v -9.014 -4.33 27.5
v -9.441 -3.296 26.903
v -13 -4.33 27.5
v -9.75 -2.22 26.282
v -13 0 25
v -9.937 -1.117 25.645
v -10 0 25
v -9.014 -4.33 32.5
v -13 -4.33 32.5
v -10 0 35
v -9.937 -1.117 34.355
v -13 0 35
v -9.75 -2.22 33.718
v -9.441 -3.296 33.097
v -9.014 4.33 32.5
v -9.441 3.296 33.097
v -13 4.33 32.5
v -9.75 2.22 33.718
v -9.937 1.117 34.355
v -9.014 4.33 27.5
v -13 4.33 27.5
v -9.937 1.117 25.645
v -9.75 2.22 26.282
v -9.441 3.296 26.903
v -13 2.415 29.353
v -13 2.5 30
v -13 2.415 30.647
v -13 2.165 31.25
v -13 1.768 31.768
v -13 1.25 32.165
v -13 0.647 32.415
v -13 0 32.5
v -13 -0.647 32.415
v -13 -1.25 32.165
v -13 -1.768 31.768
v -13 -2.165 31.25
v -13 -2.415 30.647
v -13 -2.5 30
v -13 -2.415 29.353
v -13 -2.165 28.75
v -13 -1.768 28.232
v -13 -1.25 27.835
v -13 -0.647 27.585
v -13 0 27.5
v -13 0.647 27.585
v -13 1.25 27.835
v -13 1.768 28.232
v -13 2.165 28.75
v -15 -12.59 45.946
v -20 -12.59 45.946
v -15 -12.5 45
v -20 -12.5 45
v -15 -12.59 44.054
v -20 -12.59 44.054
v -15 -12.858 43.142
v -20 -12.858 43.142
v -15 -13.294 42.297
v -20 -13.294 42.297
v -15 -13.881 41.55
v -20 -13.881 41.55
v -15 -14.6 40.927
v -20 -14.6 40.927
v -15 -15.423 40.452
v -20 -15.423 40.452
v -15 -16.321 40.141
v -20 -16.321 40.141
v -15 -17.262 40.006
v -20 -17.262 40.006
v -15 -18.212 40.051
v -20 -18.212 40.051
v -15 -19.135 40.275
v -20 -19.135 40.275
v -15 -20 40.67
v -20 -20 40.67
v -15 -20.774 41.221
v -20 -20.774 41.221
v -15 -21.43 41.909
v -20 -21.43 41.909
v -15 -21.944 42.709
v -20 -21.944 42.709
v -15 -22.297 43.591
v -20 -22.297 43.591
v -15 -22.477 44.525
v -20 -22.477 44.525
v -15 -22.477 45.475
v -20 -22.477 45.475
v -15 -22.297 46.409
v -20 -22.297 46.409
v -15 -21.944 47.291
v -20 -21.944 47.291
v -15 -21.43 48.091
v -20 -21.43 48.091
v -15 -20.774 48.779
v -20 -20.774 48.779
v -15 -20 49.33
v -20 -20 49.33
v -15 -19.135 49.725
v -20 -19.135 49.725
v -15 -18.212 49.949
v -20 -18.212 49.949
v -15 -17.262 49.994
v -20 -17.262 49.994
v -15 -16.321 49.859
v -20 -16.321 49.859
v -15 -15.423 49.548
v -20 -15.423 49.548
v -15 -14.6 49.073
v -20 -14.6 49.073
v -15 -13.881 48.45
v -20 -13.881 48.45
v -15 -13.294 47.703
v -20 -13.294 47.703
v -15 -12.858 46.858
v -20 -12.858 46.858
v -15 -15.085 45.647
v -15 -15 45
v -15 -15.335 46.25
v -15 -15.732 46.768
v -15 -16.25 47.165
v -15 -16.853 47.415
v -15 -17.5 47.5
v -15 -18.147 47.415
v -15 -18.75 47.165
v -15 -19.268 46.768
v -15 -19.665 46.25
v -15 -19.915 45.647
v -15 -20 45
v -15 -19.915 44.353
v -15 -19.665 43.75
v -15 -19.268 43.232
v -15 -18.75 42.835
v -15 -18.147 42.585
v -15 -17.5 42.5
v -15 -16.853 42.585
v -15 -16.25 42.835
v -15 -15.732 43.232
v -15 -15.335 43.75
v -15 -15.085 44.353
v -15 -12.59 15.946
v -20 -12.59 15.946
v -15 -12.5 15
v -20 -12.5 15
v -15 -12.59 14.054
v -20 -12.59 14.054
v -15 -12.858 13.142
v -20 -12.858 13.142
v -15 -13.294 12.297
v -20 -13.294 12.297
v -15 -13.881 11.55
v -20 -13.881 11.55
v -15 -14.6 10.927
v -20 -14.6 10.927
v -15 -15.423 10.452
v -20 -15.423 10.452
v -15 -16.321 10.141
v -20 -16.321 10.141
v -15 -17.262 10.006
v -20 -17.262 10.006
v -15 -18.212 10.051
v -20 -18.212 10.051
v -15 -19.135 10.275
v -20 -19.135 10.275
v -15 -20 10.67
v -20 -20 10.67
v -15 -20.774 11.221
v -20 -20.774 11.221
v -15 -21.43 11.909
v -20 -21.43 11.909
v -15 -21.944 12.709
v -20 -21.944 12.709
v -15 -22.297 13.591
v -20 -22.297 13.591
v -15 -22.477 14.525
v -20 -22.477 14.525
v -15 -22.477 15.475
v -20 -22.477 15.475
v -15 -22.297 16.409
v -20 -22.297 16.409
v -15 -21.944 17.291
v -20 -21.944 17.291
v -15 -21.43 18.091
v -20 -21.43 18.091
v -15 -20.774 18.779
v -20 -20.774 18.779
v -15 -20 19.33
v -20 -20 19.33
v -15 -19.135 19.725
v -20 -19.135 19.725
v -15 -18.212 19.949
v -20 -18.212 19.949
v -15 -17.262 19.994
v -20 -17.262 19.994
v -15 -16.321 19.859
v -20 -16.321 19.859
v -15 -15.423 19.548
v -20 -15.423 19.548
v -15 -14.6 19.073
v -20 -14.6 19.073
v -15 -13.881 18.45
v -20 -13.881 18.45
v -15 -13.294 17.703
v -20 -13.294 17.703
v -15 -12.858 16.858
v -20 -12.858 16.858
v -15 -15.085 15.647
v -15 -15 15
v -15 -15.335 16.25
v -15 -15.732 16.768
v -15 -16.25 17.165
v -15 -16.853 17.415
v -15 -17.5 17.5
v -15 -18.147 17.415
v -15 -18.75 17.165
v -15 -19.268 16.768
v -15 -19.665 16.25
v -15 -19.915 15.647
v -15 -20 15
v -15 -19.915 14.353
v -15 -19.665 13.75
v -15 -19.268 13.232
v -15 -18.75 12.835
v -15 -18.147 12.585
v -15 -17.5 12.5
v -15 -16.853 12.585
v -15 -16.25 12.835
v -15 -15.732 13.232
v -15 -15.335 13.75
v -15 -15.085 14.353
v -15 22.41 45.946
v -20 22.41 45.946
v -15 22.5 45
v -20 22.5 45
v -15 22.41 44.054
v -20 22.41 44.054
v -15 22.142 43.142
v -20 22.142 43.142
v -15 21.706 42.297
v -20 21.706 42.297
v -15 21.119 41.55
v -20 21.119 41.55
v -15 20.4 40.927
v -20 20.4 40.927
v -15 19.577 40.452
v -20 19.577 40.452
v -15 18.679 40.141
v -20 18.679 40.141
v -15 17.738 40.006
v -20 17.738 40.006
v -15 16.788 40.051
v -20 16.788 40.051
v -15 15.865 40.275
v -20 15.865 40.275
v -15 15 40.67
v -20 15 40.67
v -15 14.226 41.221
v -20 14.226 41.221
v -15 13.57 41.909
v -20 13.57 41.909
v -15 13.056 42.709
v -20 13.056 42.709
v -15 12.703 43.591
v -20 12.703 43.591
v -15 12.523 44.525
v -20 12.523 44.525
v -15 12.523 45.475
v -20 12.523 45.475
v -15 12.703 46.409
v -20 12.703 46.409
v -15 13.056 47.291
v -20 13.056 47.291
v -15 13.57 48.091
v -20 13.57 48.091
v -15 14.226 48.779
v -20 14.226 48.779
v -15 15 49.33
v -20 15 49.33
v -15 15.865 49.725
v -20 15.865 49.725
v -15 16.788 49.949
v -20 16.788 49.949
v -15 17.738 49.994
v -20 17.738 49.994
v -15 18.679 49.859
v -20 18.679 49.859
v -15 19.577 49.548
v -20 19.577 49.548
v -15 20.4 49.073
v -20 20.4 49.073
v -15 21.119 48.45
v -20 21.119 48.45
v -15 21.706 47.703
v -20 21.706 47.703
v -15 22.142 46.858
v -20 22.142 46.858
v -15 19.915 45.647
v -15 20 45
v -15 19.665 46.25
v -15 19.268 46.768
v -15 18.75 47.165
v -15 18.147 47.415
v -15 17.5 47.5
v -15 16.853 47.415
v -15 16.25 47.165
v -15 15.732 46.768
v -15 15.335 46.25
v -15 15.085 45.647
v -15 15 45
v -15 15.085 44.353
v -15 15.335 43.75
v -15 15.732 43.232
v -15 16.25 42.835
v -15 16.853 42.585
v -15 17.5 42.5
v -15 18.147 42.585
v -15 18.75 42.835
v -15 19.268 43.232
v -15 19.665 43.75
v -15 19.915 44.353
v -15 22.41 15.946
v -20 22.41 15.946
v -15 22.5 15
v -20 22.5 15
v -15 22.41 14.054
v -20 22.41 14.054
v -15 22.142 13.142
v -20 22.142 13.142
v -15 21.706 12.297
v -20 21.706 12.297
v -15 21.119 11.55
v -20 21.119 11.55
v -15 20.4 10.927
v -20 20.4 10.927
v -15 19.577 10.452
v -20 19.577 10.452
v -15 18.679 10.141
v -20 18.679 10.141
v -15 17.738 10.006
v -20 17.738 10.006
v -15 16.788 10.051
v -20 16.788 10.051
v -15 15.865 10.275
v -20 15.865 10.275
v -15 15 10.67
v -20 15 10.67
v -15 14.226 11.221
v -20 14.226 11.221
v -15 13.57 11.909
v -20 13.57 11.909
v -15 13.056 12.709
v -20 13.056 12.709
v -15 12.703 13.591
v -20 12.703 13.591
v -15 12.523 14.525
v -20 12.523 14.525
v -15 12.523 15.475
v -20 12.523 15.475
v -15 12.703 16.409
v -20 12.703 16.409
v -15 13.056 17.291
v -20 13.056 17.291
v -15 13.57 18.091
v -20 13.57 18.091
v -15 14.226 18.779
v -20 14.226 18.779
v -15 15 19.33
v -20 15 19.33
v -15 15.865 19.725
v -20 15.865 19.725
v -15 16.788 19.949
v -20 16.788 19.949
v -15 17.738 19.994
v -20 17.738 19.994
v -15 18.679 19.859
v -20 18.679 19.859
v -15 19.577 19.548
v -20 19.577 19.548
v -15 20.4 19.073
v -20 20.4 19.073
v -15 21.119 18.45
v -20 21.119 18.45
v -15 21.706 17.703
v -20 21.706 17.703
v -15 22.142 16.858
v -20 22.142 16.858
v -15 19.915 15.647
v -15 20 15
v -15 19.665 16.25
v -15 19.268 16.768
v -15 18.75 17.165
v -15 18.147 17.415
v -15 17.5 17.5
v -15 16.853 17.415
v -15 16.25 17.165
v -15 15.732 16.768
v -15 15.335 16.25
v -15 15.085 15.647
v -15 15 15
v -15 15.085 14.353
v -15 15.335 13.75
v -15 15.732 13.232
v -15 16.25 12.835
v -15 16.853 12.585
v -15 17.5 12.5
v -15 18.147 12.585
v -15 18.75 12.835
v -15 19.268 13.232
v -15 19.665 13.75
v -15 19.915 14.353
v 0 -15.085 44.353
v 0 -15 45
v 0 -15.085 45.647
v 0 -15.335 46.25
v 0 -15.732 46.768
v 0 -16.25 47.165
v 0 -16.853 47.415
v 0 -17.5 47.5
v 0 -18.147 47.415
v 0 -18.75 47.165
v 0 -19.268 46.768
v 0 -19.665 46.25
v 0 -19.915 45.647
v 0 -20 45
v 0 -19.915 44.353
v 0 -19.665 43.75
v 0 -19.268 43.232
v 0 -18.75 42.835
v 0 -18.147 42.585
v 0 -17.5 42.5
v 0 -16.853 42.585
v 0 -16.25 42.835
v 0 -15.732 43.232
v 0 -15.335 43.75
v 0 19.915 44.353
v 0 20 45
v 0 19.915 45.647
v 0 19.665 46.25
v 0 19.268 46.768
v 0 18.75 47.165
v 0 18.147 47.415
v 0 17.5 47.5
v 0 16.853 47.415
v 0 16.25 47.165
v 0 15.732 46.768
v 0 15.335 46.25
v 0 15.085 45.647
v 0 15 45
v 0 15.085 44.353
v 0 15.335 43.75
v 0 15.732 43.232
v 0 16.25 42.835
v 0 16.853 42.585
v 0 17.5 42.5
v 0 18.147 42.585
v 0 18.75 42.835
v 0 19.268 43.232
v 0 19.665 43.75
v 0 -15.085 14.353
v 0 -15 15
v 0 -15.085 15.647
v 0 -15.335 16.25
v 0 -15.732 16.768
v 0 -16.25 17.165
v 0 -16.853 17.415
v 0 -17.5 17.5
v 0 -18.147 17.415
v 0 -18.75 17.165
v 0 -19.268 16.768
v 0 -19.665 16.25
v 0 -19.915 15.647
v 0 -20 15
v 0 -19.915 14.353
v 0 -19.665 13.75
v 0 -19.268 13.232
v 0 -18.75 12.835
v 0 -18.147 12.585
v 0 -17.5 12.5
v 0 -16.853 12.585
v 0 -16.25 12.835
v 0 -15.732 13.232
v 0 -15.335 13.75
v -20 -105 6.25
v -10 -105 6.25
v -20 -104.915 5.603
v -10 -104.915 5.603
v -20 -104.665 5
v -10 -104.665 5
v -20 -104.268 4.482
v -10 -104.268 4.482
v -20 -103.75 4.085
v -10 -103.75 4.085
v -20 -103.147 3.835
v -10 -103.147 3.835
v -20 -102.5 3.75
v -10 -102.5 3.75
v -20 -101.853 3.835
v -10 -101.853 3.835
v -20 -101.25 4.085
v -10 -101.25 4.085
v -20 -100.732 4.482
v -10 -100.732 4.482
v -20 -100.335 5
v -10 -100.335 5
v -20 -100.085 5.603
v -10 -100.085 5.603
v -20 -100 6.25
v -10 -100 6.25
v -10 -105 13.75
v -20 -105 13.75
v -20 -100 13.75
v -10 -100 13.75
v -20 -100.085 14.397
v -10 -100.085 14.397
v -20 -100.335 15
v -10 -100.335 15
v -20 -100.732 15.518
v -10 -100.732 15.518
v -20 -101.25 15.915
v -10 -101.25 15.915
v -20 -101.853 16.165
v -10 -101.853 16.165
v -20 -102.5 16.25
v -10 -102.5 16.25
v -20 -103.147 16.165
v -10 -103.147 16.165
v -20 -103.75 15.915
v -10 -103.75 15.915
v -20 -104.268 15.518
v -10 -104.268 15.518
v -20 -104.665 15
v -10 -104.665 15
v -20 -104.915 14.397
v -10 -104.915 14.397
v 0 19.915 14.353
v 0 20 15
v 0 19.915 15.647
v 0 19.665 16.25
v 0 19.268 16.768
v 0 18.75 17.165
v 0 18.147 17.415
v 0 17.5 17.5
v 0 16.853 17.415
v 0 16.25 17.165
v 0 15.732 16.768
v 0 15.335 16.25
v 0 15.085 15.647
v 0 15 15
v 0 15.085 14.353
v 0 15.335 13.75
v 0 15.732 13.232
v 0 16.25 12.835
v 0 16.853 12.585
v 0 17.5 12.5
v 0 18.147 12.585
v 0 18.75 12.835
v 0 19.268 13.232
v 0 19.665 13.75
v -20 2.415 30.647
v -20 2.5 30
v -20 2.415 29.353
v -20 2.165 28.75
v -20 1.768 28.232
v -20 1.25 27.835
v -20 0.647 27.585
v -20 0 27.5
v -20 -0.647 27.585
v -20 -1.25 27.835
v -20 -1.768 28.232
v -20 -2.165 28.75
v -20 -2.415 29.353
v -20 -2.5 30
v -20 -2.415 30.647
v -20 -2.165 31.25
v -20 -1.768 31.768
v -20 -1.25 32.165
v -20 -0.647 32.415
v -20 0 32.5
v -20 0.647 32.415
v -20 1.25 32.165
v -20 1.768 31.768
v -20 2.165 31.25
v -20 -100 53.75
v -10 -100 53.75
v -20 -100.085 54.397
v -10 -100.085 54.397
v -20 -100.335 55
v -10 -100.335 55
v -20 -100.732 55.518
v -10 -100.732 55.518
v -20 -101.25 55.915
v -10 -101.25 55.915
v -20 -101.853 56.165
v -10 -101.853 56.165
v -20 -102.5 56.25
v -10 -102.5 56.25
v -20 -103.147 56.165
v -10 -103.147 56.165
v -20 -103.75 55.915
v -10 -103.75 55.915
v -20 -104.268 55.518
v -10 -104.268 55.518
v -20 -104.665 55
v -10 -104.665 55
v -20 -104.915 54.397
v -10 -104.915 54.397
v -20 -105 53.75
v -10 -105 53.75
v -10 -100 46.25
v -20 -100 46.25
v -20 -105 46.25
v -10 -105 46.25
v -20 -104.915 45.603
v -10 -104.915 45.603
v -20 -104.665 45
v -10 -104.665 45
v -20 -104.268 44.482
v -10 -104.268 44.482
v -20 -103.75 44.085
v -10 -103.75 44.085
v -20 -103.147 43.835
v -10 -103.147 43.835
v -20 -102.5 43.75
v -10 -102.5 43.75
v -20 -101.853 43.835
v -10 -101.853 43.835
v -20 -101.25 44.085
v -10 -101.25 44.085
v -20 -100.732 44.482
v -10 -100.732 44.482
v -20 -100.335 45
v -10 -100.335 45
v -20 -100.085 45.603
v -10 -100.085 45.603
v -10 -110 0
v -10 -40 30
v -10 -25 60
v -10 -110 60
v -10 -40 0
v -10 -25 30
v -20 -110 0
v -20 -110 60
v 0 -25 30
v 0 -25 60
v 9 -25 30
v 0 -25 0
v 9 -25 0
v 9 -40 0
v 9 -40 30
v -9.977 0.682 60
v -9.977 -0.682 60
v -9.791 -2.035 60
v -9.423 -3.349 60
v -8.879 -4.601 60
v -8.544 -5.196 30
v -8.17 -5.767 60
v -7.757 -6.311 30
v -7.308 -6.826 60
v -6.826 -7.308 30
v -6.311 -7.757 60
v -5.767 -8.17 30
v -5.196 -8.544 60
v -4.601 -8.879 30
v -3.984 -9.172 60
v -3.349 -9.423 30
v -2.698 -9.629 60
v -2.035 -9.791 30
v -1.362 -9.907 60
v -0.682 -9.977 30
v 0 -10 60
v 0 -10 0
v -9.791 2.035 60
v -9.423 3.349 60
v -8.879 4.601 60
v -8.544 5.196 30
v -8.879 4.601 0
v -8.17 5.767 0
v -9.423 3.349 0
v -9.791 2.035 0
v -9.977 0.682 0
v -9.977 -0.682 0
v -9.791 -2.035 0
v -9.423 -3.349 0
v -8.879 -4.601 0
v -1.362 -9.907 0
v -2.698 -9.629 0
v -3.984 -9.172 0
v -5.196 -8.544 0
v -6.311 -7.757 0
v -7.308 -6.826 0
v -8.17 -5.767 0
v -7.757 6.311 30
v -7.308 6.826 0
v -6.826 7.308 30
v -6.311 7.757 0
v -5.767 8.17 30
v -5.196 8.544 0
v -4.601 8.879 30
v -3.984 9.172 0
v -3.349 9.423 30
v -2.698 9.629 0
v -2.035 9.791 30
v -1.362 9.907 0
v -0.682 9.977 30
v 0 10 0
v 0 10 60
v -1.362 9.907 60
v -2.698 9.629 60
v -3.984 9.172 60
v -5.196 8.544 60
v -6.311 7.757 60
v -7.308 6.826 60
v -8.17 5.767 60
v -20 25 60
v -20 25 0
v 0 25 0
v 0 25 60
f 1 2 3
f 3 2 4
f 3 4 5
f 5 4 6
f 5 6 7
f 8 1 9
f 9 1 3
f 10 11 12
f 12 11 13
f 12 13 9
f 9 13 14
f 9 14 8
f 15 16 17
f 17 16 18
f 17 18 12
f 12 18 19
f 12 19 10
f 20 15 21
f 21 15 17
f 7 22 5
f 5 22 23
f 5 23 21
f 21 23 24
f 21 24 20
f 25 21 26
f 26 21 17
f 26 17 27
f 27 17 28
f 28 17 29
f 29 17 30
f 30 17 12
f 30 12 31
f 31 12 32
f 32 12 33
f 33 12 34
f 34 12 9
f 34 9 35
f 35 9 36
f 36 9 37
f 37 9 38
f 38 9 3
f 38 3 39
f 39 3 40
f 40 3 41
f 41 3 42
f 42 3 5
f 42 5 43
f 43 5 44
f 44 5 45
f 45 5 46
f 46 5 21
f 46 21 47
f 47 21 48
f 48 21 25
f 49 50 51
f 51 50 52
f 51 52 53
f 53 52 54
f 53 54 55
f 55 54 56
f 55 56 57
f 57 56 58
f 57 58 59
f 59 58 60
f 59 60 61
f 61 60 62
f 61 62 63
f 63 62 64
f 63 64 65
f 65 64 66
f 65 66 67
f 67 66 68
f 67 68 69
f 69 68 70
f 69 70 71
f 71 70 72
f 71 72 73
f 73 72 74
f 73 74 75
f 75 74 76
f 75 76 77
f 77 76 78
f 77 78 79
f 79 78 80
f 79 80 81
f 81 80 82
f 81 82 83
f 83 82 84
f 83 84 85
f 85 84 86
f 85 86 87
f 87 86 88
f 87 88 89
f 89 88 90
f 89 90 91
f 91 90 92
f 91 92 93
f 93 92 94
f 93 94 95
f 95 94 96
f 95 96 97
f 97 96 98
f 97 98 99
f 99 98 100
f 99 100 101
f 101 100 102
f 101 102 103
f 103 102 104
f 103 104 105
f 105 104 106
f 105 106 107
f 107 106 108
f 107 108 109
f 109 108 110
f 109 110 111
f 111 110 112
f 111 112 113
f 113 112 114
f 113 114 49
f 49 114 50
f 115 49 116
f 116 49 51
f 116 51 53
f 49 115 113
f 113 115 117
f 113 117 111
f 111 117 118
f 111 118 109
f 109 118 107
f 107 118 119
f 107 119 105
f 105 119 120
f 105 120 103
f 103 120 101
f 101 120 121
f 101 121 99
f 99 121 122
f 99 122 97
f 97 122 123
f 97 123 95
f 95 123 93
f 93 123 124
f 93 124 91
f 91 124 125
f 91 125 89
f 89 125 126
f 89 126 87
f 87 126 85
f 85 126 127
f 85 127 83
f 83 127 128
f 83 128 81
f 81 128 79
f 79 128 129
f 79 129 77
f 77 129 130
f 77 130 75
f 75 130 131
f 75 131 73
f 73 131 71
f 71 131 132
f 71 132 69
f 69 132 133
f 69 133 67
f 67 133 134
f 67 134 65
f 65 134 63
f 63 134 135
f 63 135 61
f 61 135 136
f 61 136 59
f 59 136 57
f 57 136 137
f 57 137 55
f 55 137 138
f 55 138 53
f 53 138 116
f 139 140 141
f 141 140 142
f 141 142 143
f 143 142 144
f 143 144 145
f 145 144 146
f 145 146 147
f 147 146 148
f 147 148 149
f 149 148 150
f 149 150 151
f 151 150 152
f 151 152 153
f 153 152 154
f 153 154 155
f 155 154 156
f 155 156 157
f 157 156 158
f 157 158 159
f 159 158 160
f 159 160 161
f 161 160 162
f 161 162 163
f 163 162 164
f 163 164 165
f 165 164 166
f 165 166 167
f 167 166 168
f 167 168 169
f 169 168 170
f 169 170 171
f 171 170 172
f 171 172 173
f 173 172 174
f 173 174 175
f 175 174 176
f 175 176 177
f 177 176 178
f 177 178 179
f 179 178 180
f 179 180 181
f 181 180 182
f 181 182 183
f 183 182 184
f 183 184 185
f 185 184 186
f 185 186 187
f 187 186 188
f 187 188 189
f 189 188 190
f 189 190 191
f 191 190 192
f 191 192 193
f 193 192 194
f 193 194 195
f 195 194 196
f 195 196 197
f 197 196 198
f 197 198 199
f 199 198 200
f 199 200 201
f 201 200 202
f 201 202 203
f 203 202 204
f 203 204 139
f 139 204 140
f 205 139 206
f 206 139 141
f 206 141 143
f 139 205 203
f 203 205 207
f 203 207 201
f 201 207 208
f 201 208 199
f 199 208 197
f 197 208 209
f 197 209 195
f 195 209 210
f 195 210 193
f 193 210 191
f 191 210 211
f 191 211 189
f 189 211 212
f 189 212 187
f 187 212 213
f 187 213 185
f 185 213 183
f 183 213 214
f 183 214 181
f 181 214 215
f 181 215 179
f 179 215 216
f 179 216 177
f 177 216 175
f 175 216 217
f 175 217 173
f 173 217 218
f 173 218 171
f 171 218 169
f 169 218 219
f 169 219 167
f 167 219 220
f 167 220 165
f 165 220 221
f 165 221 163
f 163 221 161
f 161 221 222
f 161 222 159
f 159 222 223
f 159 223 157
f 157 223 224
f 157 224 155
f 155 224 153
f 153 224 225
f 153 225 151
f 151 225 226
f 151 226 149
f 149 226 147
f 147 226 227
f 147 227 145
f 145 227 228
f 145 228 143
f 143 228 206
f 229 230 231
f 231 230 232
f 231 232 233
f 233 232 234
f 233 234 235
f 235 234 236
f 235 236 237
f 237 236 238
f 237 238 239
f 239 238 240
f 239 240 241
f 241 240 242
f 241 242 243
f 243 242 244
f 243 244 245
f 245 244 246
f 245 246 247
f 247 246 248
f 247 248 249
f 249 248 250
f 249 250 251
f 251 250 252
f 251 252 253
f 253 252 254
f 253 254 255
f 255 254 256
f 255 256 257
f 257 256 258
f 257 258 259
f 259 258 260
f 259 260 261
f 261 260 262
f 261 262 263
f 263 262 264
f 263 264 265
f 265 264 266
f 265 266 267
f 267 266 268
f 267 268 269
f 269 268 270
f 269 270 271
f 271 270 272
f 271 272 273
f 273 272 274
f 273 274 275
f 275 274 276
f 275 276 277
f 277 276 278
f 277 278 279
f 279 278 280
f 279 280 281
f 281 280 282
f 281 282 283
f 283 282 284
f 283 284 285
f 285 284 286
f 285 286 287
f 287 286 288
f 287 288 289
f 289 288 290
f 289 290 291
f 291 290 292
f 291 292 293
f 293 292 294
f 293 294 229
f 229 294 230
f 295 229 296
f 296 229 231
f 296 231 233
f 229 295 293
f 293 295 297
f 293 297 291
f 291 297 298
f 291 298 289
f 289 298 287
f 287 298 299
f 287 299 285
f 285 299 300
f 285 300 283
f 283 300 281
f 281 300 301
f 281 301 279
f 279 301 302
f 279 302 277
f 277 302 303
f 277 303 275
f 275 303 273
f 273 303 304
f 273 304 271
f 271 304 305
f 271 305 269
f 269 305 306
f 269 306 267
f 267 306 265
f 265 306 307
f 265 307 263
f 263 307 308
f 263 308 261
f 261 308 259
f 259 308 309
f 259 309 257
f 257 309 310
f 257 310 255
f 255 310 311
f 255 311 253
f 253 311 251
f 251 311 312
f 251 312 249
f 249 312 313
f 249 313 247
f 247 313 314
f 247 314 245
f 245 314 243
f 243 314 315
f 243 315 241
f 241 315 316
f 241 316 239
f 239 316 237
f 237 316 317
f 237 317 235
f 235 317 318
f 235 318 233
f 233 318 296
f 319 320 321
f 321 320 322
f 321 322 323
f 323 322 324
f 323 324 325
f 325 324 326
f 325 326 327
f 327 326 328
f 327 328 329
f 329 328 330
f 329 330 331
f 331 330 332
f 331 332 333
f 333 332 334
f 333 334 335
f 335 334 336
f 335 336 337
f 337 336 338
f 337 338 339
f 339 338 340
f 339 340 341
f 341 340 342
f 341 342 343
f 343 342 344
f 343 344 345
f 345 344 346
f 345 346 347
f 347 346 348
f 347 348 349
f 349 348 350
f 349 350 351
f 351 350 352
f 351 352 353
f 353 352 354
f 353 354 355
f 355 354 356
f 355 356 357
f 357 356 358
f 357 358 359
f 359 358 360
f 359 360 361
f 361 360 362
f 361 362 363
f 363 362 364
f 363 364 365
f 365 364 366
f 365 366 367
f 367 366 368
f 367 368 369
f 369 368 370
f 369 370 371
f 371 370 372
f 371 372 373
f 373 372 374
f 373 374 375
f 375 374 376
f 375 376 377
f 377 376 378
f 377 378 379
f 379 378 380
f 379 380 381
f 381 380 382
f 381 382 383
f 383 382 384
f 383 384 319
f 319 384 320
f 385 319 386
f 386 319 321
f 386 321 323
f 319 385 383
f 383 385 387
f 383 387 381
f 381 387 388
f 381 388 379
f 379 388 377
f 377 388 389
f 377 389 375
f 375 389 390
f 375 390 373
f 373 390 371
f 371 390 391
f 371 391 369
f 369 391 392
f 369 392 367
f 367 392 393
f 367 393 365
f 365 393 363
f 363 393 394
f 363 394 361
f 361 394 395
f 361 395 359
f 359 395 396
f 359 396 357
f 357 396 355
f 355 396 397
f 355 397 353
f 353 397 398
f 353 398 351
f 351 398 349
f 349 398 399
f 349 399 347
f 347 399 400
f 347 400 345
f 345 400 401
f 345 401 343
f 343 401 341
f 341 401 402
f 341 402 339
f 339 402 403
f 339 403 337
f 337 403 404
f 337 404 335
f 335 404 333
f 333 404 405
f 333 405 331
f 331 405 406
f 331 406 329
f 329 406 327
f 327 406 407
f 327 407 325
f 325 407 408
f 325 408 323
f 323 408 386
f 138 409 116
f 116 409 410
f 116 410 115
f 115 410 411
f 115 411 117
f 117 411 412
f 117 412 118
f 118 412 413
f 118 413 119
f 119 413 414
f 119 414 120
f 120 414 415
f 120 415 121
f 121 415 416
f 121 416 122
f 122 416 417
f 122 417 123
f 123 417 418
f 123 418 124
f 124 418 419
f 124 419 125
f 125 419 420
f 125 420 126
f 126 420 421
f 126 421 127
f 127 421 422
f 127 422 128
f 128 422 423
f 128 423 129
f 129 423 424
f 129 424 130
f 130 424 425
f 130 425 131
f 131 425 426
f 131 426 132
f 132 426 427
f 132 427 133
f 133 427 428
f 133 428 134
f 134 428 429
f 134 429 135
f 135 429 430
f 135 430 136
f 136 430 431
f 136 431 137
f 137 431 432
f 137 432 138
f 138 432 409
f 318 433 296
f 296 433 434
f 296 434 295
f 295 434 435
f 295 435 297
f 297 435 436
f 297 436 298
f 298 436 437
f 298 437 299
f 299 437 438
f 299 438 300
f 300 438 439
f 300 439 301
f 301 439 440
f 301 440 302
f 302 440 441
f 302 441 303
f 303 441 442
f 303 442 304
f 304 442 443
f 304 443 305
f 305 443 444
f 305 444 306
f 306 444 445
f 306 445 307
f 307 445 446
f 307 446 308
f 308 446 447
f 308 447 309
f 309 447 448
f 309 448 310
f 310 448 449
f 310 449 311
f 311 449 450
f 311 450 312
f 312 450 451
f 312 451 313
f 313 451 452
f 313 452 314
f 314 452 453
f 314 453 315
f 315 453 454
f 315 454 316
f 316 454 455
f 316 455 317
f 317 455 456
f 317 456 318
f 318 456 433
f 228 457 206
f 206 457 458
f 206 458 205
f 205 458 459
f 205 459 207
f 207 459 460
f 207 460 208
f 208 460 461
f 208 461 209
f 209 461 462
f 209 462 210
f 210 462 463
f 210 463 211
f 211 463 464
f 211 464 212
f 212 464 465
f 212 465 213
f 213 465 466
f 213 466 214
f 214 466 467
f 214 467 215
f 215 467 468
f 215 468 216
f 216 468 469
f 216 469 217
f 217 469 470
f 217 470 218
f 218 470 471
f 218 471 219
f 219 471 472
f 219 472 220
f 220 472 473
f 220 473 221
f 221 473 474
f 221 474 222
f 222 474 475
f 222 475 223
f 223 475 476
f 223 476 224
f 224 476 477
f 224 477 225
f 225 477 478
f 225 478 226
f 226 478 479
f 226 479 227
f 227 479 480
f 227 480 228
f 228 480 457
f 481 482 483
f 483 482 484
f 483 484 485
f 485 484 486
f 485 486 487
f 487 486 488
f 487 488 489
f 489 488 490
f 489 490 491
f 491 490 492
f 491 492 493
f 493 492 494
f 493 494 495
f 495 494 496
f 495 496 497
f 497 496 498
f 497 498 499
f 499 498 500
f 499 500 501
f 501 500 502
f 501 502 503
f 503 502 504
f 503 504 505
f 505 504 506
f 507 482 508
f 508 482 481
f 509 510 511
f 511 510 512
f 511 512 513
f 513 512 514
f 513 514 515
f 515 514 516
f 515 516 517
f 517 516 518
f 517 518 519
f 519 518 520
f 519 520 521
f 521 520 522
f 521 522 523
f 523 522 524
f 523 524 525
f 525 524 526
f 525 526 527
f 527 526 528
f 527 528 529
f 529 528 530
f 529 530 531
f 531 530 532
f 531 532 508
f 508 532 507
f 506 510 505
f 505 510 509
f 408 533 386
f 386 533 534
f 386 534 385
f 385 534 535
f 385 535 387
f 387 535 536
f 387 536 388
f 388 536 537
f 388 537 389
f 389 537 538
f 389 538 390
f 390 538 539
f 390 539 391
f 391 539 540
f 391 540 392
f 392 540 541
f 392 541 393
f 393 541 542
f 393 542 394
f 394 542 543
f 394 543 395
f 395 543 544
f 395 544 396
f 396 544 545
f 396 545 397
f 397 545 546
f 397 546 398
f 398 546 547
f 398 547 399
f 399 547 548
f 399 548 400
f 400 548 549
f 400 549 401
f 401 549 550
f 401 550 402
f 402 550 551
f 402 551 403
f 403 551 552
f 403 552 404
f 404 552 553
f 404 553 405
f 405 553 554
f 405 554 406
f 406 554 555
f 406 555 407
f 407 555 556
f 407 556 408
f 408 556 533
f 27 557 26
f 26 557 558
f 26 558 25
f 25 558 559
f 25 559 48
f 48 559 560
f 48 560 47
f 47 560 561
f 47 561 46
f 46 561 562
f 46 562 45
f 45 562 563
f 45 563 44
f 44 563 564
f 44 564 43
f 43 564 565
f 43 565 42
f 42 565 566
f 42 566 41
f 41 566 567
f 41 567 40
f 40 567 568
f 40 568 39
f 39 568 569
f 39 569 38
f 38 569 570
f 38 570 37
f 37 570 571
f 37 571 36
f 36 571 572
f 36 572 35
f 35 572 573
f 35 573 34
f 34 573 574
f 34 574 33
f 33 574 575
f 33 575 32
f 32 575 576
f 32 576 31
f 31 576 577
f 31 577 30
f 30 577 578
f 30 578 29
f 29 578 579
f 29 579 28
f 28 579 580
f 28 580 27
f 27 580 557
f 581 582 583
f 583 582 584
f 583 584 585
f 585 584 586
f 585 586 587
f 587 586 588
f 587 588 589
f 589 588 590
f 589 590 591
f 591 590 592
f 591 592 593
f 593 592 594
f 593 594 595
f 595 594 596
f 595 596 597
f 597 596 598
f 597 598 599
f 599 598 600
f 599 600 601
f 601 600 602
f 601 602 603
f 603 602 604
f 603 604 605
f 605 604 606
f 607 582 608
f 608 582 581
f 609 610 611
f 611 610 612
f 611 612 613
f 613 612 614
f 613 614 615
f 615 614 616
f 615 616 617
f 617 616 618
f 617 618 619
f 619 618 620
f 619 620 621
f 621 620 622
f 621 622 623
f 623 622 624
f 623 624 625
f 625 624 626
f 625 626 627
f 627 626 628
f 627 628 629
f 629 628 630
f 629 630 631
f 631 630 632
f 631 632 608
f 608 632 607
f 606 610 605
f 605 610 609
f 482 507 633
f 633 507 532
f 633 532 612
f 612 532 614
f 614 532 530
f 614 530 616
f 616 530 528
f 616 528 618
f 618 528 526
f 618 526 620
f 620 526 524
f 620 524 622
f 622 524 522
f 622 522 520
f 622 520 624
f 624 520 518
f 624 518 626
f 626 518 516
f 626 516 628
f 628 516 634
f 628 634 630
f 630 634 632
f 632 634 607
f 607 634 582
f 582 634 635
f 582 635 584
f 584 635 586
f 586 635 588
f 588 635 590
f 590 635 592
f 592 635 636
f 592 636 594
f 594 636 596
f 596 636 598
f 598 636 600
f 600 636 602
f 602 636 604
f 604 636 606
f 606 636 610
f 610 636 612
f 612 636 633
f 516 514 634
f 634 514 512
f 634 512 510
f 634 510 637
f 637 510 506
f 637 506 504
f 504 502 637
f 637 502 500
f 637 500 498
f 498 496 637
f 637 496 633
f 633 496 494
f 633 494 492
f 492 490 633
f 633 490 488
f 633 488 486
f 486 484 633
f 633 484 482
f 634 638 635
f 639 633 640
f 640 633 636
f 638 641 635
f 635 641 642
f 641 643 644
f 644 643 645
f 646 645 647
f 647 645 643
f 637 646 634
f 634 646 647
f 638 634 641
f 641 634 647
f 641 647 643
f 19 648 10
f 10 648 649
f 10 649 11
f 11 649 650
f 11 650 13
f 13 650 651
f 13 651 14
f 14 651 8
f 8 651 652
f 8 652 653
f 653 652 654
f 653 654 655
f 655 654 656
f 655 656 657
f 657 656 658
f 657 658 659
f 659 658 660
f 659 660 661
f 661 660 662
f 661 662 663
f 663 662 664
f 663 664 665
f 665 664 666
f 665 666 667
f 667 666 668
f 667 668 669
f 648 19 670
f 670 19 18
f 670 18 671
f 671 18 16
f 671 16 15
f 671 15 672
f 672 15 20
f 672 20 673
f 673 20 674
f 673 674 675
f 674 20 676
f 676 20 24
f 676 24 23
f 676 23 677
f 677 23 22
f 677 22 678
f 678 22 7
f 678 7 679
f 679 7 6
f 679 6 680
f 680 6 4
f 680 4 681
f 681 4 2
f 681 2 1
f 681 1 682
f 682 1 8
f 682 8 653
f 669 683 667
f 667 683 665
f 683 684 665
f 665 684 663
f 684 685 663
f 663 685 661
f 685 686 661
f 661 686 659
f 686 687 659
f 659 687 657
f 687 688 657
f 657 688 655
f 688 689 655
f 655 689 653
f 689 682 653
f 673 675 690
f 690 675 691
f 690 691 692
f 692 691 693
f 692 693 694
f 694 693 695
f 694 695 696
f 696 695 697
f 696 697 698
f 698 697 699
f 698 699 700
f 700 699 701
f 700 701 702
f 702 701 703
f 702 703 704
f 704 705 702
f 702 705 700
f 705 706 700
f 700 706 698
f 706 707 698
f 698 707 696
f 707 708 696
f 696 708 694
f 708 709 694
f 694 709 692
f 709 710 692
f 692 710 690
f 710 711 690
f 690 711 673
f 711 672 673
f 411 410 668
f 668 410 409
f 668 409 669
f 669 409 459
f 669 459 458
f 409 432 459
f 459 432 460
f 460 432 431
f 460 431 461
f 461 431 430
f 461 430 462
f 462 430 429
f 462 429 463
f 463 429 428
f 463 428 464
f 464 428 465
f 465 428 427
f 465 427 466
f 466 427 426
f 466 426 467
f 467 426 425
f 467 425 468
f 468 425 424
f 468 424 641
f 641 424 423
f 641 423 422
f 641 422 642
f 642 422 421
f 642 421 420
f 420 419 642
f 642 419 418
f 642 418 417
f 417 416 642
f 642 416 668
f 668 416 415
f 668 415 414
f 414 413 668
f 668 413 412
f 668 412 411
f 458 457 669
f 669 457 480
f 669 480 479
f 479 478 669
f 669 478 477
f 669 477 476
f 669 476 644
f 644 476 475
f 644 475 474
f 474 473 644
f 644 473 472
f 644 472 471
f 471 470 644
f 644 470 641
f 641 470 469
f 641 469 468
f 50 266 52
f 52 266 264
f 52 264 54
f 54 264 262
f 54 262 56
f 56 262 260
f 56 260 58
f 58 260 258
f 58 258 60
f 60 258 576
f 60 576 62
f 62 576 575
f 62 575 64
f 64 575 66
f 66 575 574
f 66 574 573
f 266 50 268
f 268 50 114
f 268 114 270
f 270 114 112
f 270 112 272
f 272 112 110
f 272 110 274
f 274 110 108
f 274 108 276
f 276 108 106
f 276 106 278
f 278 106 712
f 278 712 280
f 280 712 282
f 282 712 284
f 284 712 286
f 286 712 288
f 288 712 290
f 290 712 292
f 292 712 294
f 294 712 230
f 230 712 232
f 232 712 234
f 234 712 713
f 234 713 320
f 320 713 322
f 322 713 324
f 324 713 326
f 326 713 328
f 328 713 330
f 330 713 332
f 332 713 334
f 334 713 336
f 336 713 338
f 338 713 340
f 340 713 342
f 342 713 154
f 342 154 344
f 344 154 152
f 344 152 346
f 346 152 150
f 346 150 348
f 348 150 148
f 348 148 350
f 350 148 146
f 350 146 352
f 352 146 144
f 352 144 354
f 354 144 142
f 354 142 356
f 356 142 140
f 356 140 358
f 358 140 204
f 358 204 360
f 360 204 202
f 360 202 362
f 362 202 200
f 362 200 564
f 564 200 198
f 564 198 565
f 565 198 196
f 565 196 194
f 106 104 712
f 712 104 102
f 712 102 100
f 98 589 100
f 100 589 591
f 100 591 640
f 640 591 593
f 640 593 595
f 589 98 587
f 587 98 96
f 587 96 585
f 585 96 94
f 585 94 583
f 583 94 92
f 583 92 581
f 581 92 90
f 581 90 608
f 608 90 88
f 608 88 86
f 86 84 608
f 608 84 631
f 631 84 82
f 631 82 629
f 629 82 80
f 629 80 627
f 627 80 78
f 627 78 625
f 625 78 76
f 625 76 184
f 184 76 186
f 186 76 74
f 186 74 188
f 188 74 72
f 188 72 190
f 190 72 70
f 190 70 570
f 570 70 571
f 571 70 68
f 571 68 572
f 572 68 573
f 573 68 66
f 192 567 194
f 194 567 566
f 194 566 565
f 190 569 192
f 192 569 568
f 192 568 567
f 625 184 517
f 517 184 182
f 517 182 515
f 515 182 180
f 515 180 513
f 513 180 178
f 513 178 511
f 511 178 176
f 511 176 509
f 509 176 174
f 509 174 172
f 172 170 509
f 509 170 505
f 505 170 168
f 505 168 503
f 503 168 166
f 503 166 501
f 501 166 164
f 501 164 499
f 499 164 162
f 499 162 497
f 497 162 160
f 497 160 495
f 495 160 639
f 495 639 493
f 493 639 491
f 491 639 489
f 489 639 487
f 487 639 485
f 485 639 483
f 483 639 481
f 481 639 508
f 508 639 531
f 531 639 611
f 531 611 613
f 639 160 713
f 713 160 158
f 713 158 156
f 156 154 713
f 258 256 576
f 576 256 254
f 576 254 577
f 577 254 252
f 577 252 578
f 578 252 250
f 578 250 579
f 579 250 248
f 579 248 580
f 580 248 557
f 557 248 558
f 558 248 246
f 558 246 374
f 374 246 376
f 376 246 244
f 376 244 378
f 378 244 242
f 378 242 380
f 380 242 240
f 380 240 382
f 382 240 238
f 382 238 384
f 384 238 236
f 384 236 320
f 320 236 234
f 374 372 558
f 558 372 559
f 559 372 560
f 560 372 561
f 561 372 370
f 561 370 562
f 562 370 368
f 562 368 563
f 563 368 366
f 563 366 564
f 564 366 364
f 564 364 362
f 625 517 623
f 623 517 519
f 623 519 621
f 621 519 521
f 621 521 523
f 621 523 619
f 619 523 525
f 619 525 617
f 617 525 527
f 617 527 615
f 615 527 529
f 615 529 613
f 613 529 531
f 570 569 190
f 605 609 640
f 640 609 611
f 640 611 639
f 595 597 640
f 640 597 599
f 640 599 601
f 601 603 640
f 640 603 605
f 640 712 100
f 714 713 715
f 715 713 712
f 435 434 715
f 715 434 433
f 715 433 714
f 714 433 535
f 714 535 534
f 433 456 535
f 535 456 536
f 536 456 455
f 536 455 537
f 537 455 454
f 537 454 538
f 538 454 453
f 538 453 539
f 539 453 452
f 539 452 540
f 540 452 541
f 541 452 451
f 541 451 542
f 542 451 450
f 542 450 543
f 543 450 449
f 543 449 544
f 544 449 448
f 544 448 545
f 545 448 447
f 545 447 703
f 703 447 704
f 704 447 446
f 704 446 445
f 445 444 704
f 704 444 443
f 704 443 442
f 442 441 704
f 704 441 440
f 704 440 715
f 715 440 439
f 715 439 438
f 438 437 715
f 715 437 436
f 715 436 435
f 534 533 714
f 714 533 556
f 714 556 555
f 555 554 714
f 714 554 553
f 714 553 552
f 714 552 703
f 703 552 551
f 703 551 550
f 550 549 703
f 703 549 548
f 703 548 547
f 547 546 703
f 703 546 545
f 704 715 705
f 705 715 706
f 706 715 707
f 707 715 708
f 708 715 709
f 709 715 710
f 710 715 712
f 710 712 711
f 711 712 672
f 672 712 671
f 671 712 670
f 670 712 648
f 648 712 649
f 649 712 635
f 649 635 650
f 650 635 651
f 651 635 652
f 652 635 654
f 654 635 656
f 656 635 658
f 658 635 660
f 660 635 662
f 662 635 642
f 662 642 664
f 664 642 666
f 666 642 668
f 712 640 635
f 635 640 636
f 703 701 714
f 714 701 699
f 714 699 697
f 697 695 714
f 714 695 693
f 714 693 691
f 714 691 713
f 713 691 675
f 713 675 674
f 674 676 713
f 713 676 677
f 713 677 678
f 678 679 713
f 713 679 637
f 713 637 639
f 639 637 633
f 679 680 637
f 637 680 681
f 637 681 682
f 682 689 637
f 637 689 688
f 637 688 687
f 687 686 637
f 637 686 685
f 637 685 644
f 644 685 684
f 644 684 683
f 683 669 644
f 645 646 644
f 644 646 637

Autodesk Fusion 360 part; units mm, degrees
sketch "Sketch1" plane through (0, 0, 0) normal (0, 0, 1) x (1, 0, 0)
  circle A0 centre (0, 0) radius 10
  line L0 (0, 0) -> (0, 10) construction
  line L1 (0, 10) -> (0, 25)
  line L2 (0, 25) -> (-20, 25)
  line L3 (-20, 25) -> (-20, -25)
  line L4 (-20, -25) -> (0, -25)
  line L5 (0, -25) -> (0, -10)
  line L6 (-20, -25) -> (-20, -110)
  line L7 (-20, -110) -> (-10, -110)
  line L8 (-10, -110) -> (-10, -25)
  line L9 (-10, -25) -> (9, -25)
  line L10 (9, -25) -> (9, -40)
  line L11 (9, -40) -> (-10, -40)
  line L12 (-10, -40) -> (-10, -25)
  dimension "d1" = 20
  dimension "d2" = 15
  dimension "d3" = 20
  dimension "d4" = 50
  dimension "d5" = 85
  dimension "d6" = 10
  dimension "d7" = 19
extrude "Extrude1" add sketch "Sketch1" along normal blind 60 contours A0 L1 L2 L3 L4 L5 L9
extrude "Extrude2" add sketch "Sketch1" along normal blind 30 contours L4 L8 L9 L10 L11 L12
extrude "Extrude3" add sketch "Sketch1" along normal blind 60 contours L4 L6 L7 L8 L12
sketch "Sketch2" plane through (-20, 0, 0) normal (-1, 0, 0) x (0, -1, 0)
  line L0 (-25, 0) -> (110, 0)
  line L1 (110, 0) -> (110, 60)
  line L2 (110, 60) -> (-25, 60)
  line L3 (-25, 60) -> (-25, 0)
  line L4 (-25, 60) -> (-17.5, 60) construction
  line L5 (-17.5, 60) -> (27.5, 60) construction
  line L6 (-17.5, 60) -> (-17.5, 45) construction
  circle A0 centre (-17.5, 15) radius 2.5
  line L7 (110, 30) -> (102.5, 30) construction
  line L8 (102.5, 30) -> (102.5, 46.25) construction
  circle A1 centre (102.5, 46.25) radius 2.5
  circle A2 centre (102.5, 53.75) radius 2.5
  line L9 (102.5, 53.75) -> (100, 53.75) construction
  line L10 (102.5, 46.25) -> (100, 46.25) construction
  line L11 (100, 53.75) -> (100, 46.25)
  line L12 (105, 53.75) -> (105, 46.25)
  circle A3 centre (102.5, 6.25) radius 2.5
  line L13 (105, 6.25) -> (105, 13.75)
  circle A4 centre (102.5, 13.75) radius 2.5
  line L14 (100, 6.25) -> (100, 13.75)
  circle A5 centre (17.5, 15) radius 2.5
  circle A6 centre (-17.5, 45) radius 2.5
  circle A7 centre (17.5, 45) radius 2.5
  line L15 (-17.5, 45) -> (17.5, 45) construction
  line L16 (-17.5, 15) -> (17.5, 15) construction
  line L17 (0, 15) -> (0, 45) construction
  circle A8 centre (0, 30) radius 2.5
  dimension "d14" = 7.5
  dimension "d15" = 45
  dimension "d16" = 15
  dimension "d23" = 7.5
  dimension "d24" = 16.25
  dimension "d25" = 5
  dimension "d28" = 0
  dimension "d29" = 7.5
  dimension "d34" = 35
  dimension "d35" = 30
  dimension "d36" = 5
extrude "Extrude4" cut sketch "Sketch2" against normal blind 20 contours A0 | A1 | A1 A2 L11 L12 | A2 | A3 | A3 L13 A4 L14 | A4 | A5 | A6 | A7 | A8
sketch "Sketch3" plane through (-20, 0, 0) normal (-1, 0, 0) x (0, -1, 0)
  circle A0 centre (17.5, 45) radius 2.5
  circle A1 centre (-17.5, 45) radius 2.5
  circle A2 centre (17.5, 15) radius 2.5
  arc A3 (105, 13.75) -> (100, 13.75) centre (102.5, 13.75) ccw
  line L0 (105, 13.75) -> (105, 6.25)
  arc A4 (100, 6.25) -> (105, 6.25) centre (102.5, 6.25) ccw
  line L1 (100, 6.25) -> (100, 13.75)
  circle A5 centre (-17.5, 15) radius 2.5
  circle A6 centre (0, 30) radius 2.5
  arc A7 (100, 46.25) -> (105, 46.25) centre (102.5, 46.25) ccw
  line L2 (100, 46.25) -> (100, 53.75)
  arc A8 (105, 53.75) -> (100, 53.75) centre (102.5, 53.75) ccw
  line L3 (105, 53.75) -> (105, 46.25)
  line L4 (-25, 0) -> (110, 0)
  line L5 (110, 0) -> (110, 60)
  line L6 (110, 60) -> (-25, 60)
  line L7 (-25, 60) -> (-25, 0)
  circle A9 centre (-17.5, 45) radius 5
  circle A10 centre (17.5, 45) radius 5
  circle A11 centre (-17.5, 15) radius 5
  circle A12 centre (17.5, 15) radius 5
  line L8 (0, 30) -> (0, 35) construction
  line L9 (0, 35) -> (-4.3301, 32.5)
  line L10 (-4.3301, 32.5) -> (-4.3301, 27.5)
  line L11 (-4.3301, 27.5) -> (0, 25)
  line L12 (0, 25) -> (4.3301, 27.5)
  line L13 (4.3301, 27.5) -> (4.3301, 32.5)
  line L14 (4.3301, 32.5) -> (0, 35)
  point P0 (0, 30)
  dimension "d37" = 10
  dimension "d40" = 35
  dimension "d41" = -30
  dimension "d42" = 5
extrude "Extrude5" cut sketch "Sketch3" against normal blind 5 contours A9 | A10 | A11 | A12
extrude "Extrude6" cut sketch "Sketch3" against normal blind 6 from surface at -7 contours L9 L10 L11 L12 L13 L14
